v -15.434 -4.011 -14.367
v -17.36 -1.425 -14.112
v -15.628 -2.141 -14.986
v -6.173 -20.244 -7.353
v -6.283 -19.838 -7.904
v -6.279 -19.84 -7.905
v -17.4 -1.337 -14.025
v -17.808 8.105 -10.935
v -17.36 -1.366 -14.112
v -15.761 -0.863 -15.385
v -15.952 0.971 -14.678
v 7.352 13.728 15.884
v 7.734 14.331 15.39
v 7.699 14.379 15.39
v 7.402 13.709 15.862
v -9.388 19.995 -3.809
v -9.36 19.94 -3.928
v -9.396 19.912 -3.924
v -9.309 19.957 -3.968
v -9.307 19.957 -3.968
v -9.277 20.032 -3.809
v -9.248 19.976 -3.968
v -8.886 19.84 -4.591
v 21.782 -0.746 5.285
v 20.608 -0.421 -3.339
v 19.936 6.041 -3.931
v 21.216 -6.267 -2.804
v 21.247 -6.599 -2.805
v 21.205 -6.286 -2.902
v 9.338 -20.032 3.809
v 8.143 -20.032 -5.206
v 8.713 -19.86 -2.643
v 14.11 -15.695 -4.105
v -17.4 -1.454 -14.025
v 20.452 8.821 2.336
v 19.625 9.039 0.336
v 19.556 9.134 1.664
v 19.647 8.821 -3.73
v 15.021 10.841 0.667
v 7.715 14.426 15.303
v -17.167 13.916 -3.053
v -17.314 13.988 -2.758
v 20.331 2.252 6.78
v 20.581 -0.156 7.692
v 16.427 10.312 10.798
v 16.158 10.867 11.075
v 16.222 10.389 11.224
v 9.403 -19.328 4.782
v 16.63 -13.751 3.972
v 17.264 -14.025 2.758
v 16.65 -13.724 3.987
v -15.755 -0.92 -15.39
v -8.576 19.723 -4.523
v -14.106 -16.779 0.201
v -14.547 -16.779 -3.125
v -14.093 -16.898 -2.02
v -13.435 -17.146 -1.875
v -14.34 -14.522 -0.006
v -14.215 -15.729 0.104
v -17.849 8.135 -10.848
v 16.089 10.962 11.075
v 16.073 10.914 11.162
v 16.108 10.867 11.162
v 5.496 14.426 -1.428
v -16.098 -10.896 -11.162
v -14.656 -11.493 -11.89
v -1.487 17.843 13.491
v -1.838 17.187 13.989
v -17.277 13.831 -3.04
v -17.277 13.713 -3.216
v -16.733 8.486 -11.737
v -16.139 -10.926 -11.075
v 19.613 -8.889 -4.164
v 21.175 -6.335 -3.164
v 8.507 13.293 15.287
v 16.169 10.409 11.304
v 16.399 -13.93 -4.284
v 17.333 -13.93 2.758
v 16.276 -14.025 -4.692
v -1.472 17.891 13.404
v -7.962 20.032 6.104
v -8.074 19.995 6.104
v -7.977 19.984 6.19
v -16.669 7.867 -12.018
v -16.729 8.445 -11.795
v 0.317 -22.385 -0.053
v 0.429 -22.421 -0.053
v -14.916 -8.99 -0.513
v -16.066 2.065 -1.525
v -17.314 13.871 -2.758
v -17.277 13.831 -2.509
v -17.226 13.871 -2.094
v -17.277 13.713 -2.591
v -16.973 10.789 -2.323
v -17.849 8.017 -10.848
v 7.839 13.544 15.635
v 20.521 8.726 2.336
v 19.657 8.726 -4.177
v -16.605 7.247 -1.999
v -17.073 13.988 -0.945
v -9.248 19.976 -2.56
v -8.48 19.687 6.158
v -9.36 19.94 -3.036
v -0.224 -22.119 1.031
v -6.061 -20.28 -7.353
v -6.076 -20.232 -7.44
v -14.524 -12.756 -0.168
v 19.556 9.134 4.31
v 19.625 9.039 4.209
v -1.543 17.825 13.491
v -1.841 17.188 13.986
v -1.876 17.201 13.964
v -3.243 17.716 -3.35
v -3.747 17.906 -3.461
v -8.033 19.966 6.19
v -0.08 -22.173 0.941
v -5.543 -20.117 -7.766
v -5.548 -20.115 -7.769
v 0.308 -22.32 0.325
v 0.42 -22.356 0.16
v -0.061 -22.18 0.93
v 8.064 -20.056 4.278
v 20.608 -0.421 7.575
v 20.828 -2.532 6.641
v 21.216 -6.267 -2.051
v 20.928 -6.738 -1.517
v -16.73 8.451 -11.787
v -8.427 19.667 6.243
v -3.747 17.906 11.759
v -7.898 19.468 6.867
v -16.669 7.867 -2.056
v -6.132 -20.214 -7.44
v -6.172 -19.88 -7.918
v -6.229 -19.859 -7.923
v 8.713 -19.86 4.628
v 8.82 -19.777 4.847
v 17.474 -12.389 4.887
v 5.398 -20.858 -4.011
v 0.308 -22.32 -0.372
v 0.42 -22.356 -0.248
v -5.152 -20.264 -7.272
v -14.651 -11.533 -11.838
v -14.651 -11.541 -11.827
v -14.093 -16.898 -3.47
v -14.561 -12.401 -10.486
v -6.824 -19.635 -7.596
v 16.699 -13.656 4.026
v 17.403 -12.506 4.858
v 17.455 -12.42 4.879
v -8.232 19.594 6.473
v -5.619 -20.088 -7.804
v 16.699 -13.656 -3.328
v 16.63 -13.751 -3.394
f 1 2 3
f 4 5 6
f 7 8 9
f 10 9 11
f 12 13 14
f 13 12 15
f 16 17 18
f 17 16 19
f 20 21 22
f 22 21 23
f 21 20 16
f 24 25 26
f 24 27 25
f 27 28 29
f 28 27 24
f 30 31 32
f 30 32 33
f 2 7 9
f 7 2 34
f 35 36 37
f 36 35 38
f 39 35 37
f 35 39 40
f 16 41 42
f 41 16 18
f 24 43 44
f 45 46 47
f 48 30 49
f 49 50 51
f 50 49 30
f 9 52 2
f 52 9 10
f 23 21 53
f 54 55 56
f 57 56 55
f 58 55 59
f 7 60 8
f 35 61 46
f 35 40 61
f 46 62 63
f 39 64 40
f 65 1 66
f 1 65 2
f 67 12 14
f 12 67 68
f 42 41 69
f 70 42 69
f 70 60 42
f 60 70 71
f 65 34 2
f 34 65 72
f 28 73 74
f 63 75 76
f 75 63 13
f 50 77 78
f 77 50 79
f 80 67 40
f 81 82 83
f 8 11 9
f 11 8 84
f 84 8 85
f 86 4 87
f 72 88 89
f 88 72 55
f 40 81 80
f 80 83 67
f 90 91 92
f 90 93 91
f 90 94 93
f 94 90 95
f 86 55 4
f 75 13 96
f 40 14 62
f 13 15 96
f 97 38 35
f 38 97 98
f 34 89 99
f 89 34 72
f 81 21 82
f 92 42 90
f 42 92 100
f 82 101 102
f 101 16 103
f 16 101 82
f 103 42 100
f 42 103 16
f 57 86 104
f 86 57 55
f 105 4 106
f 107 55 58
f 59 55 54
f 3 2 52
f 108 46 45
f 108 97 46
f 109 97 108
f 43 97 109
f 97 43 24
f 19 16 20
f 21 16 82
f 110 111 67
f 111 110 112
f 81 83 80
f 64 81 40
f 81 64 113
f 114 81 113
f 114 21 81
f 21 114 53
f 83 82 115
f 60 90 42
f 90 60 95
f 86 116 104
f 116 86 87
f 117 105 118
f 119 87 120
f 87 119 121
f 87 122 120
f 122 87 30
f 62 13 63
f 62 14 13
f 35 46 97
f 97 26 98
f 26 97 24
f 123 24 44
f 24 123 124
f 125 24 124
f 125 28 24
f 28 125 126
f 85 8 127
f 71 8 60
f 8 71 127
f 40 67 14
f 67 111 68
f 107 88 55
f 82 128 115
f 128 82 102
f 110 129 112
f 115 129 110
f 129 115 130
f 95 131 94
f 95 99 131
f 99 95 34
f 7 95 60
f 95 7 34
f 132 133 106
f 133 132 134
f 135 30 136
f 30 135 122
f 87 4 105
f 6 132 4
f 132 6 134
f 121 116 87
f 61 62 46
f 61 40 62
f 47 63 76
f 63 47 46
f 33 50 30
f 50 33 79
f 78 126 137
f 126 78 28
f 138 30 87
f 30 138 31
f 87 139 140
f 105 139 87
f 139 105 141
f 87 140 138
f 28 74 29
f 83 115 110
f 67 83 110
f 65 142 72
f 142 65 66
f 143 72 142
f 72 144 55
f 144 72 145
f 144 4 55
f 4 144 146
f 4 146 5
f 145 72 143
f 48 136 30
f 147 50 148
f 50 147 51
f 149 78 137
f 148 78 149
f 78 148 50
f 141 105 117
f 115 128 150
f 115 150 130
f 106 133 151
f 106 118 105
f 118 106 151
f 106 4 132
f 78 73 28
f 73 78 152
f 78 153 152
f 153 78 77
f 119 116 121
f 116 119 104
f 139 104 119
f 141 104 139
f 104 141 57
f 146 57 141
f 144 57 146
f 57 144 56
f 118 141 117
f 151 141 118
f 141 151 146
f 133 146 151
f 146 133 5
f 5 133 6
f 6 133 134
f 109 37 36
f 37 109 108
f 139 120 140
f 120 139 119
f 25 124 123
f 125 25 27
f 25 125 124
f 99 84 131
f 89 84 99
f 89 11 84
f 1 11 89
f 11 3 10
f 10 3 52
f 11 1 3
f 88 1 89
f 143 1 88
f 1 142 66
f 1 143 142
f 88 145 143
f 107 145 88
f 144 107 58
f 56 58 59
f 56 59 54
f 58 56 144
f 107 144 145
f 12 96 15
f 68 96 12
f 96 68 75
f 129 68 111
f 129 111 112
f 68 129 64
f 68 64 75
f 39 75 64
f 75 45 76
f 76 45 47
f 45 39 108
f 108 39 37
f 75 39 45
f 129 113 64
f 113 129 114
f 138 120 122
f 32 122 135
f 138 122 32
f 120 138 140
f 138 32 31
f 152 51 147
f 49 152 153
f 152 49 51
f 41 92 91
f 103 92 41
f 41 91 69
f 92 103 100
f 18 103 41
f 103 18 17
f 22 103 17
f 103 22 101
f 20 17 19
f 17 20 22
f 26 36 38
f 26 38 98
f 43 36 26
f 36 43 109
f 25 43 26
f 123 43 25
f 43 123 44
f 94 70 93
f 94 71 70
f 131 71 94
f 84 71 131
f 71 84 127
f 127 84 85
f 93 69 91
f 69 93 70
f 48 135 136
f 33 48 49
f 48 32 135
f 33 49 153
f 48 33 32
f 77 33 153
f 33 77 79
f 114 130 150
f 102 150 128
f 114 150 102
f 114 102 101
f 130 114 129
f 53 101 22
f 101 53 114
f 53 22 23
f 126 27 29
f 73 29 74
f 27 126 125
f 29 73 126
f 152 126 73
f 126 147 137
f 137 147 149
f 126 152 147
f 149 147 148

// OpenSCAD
// Auto-generated OpenSCAD file

    inner_points = 10*[[-0.9279033340044873, 1.9881287339373244, 0.5], [1.6599232743581653, -1.3655894049421804, 0.5000000000000002], [-1.719608792154131, 1.3772257403810124, 0.49999999999999983], [0.8682178162085216, -1.9764923984984926, 0.5], [-0.9279033340044872, 1.9881287339373246, -0.5], [1.6599232743581653, -1.3655894049421804, -0.49999999999999983], [-1.719608792154131, 1.3772257403810124, -0.5000000000000002], [0.8682178162085217, -1.9764923984984923, -0.5], [0.06055847339868262, 0.7071223935723936, 2.118033988749895], [0.6714614669549944, -0.08458306457724996, 2.118033988749895], [-0.7311469847509608, 0.0962194000160817, 2.118033988749895], [-0.1202439911946491, -0.6954860581335618, 2.118033988749895], [0.060558473398683345, 0.7071223935723938, -2.118033988749895], [0.6714614669549952, -0.08458306457724962, -2.118033988749895], [-0.7311469847509601, 0.09621940001608204, -2.118033988749895], [-0.12024399119464838, -0.6954860581335616, -2.118033988749895], [1.9524678073199255, 0.9038787428259204, 0.5000000000000004], [-1.4012503315595792, -1.6839478655367321, 0.49999999999999967], [1.9524678073199255, 0.9038787428259204, -0.4999999999999996], [-1.4012503315595792, -1.6839478655367321, -0.5000000000000003], [2.1116470376172014, -0.6267080601329519, 3.1851338429106984e-16], [0.038935239102626924, -2.226072861092434, -1.4591074810930197e-16], [-0.8295251593777242, 1.042174066976703, 1.8090169943749475], [0.7698396415817579, -1.0305377315378712, 1.8090169943749475], [-0.8295251593777235, 1.0421740669767032, -1.8090169943749475], [0.7698396415817585, -1.030537731537871, -1.8090169943749475], [1.402365869434126, 1.1109520649773128, 1.3090169943749477], [-1.462051387230092, -1.099315729538481, 1.3090169943749472], [1.4023658694341263, 1.110952064977313, -1.3090169943749472], [-1.4620513872300915, -1.0993157295384808, -1.3090169943749477], [-0.3778013961186881, 1.7810554117859319, 1.3090169943749475], [1.5991222186876526, -0.7809572689439295, 1.3090169943749477], [-1.6588077364836187, 0.7925936043827613, 1.3090169943749472], [0.318115878322722, -1.7694190763471, 1.3090169943749475], [-0.37780139611868774, 1.781055411785932, -1.3090169943749475], [1.599122218687653, -0.7809572689439293, -1.3090169943749472], [-1.6588077364836182, 0.7925936043827615, -1.3090169943749477], [0.31811587832272237, -1.7694190763470998, -1.3090169943749475], [0.512282236657719, 1.4460037383816222, 1.6180339887498951], [1.5007440440608895, 0.1649973980166917, 1.6180339887498951], [-1.5604295618568556, -0.15336106257785984, 1.6180339887498947], [-0.571967754453685, -1.4343674029427904, 1.6180339887498947], [0.5122822366577193, 1.4460037383816224, -1.6180339887498947], [1.50074404406089, 0.16499739801669192, -1.6180339887498947], [-1.560429561856855, -0.1533610625778596, -1.6180339887498951], [-0.5719677544536846, -1.4343674029427902, -1.6180339887498951], [2.0508459819466887, -0.04207592413470093, 0.8090169943749478], [-0.5111666987831726, -2.0189995389410416, 0.8090169943749472], [2.0508459819466887, -0.04207592413470082, -0.8090169943749471], [-0.5111666987831723, -2.018999538941041, -0.8090169943749477]];

    outer_points = 10*[[-0.799273279028224, 1.9936569571401734, 0.6103786858810235], [1.7232737678332082, -1.3929503128430878, 0.2758349588940299], [-1.5918035039950686, 1.3929503128430878, 0.7154851557643633], [0.9307435428663637, -1.9936569571401734, 0.38094142877736964], [-0.9307435428663637, 1.9936569571401734, -0.38094142877736964], [1.5918035039950686, -1.3929503128430878, -0.7154851557643633], [-1.7232737678332082, 1.3929503128430878, -0.2758349588940299], [0.799273279028224, -1.9936569571401734, -0.6103786858810235], [0.37697731005219565, 0.7000880865540592, 2.0865839921437805], [0.9724698895528412, -0.09938144225697354, 2.0076089311287193], [-0.41555291491464885, 0.09938144225697354, 2.19169046202712], [0.1799396645859967, -0.7000880865540592, 2.112715401012059], [-0.1799396645859967, 0.7000880865540592, -2.112715401012059], [0.41555291491464885, -0.09938144225697354, -2.19169046202712], [-0.9724698895528412, 0.09938144225697354, -2.0076089311287193], [-0.37697731005219565, -0.7000880865540592, -2.0865839921437805], [2.04208737526077, 0.8725823254836041, 0.23355345117123516], [-1.3151245319219846, -1.672051854294637, 0.6787916024720966], [1.9106171114226302, 0.8725823254836041, -0.757766663487158], [-1.4465947957601242, -1.672051854294637, -0.31252851218629657], [2.114691729378242, -0.6599187580852582, -0.28045338280409476], [0.03982066330344263, -2.2325891701229215, -0.005281072211994187], [-0.5416779650523665, 1.0465191996985734, 1.8966946312832687], [1.0173418481286722, -1.0465191996985734, 1.689935237282241], [-1.0173418481286722, 1.0465191996985734, -1.689935237282241], [0.5416779650523665, -1.0465191996985734, -1.8966946312832687], [1.605797455139905, 1.0866885281673746, 1.1075154867158379], [-1.2616038359017392, -1.0866885281673746, 1.4877942671912783], [1.2616038359017392, 1.0866885281673746, -1.4877942671912783], [-1.605797455139905, -1.0866885281673746, -1.1075154867158379], [-0.1502600035073329, 1.7795507544564033, 1.3404062895851439], [1.7767944638534539, -0.8075869867158254, 1.0848376236132116], [-1.432600844615288, 0.8075869867158254, 1.5104721302939046], [0.49445362274549887, -1.7795507544564033, 1.2549034643219723], [-0.49445362274549887, 1.7795507544564033, -1.2549034643219723], [1.432600844615288, -0.8075869867158254, -1.5104721302939046], [-1.7767944638534539, 0.8075869867158254, -1.0848376236132116], [0.1502600035073329, -1.7795507544564033, -1.3404062895851439], [0.7683952715972292, 1.433119641311889, 1.530295650445656], [1.7319225052776228, 0.1395507707257745, 1.4025113174596897], [-1.3064757944775702, -0.1395507707257745, 1.8054679610377566], [-0.3429485607971766, -1.433119641311889, 1.6776836280517904], [0.3429485607971766, 1.433119641311889, -1.6776836280517904], [1.3064757944775702, 0.1395507707257745, -1.8054679610377566], [-1.7319225052776228, -0.1395507707257745, -1.4025113174596897], [-0.7683952715972292, -1.433119641311889, -1.530295650445656], [2.1682124253984876, -0.07455543195799563, 0.528549281915087], [-0.3964692568174225, -2.018482967439151, 0.8686809633326087], [1.9554890699984613, -0.07455543195799563, -1.0754403573336362], [-0.6091926122174488, -2.018482967439151, -0.7353086759161145]];

    // Convex hull for inner set (I)
    module inner_hull() {
        hull() {
            for (p = inner_points) {
                translate(p) sphere(r=0.1);
            }
        }
    }

    // Convex hull for outer set (O) minus inner hull (O \ I)
    module outer_minus_inner() {
        difference() {
            hull() {
                for (p = outer_points) {
                    translate(p) sphere(r=0.1);
                }
            }
            inner_hull(); // Subtract inner hull
        }
    }

    // Convex hull for outer set (O) minus all translated inner hulls
    module outer_minus_AllTranslationInner() {
        difference() {
            hull() {
                for (p = outer_points) {
                    translate(p) sphere(r=0.1);
                }
            }
            hull() {
                translate([0,0,50]) inner_hull();
                translate([0,0,-50]) inner_hull();
            }; // Subtract translated inner hulls
        }
    }

    // Difference between outer_minus_inner and outer_minus_AllTranslationInner
    module outer_minus_inner_diff() {
        difference() {
            // Outer minus inner
            difference() {
                hull() {
                    for (p = outer_points) {
                        translate(p) sphere(r=0.1);
                    }
                }
                inner_hull();
            }

            // Subtract Outer minus AllTranslationInner
            difference() {
                hull() {
                    for (p = outer_points) {
                        translate(p) sphere(r=0.1);
                    }
                }
                hull() {
                    translate([0,0,50]) inner_hull();
                    translate([0,0,-50]) inner_hull();
                };
            }
        }
    }

    // Rendering all with colors applied
    color([0, 1, 0, 1]) outer_minus_AllTranslationInner(); // Opaque green
    
